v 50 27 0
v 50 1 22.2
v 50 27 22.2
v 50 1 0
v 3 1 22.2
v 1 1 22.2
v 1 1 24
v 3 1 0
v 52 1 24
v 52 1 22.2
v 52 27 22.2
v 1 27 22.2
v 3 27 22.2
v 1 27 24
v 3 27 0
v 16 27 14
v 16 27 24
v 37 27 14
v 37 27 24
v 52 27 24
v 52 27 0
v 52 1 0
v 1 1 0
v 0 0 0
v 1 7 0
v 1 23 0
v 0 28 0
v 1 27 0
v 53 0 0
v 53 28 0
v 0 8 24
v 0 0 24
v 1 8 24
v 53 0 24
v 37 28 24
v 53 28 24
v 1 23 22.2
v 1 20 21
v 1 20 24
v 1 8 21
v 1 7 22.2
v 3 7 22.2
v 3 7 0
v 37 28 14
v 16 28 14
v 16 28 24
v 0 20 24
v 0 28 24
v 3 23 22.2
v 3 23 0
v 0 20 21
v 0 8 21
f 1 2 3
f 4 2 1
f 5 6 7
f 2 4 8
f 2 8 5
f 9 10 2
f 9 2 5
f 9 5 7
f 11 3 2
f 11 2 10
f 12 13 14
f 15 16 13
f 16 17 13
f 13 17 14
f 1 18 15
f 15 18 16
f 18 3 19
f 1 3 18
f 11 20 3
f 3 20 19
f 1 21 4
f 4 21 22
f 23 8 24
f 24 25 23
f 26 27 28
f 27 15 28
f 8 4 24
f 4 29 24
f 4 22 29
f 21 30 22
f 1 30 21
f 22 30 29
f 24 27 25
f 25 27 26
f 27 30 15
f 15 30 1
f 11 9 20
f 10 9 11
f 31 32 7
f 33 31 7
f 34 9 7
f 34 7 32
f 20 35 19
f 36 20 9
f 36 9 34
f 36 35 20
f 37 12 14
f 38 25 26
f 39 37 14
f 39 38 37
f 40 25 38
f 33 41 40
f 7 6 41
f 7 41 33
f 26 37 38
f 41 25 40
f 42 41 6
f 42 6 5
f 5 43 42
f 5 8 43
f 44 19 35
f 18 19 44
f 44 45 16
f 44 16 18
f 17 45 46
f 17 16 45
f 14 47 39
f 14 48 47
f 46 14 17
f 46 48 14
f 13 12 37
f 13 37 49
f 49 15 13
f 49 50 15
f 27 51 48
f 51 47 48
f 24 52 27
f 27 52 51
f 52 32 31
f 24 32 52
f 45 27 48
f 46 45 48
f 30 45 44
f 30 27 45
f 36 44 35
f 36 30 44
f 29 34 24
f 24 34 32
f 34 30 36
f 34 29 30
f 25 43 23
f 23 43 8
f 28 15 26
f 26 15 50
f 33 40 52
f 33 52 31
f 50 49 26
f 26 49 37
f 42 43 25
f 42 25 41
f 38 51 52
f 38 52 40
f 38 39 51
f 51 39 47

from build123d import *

# Parameters (mm, degrees)
BOX006_W     = 1
BOX006_H     = 12
BOX006_DEPTH = 3
BOX005_W     = 21
BOX005_H     = 1
BOX005_DEPTH = 10
BOX004_W     = 2
BOX004_H     = 26
BOX004_DEPTH = 22.2
BOX002_W     = 2
BOX002_H     = 4
BOX002_DEPTH = 22.2
BOX001_W     = 51
BOX001_H     = 26
BOX001_DEPTH = 24
BOX_W        = 53
BOX_H        = 28
BOX_DEPTH    = 24
BOX003_W     = 2
BOX003_H     = 6
BOX003_DEPTH = 22.2


with BuildPart() as connectorcutout:
    # Box006 → Box006 (new body)
    with BuildSketch(Plane(origin=(0, 8, 21), x_dir=(1, 0, 0), z_dir=(0, 0, 1))):
        with Locations((0.5, 6)):
            Rectangle(BOX006_W, BOX006_H)
    extrude(amount=BOX006_DEPTH)


with BuildPart() as cube:
    # Box005 → Box005 (new body)
    with BuildSketch(Plane(origin=(16, 27, 14), x_dir=(1, 0, 0), z_dir=(0, 0, 1))):
        with Locations((10.5, 0.5)):
            Rectangle(BOX005_W, BOX005_H)
    extrude(amount=BOX005_DEPTH)


with BuildPart() as rightsupport:
    # Box004 → Box004 (new body)
    with BuildSketch(Plane(origin=(50, 1, 0), x_dir=(1, 0, 0), z_dir=(0, 0, 1))):
        with Locations((1, 13)):
            Rectangle(BOX004_W, BOX004_H)
    extrude(amount=BOX004_DEPTH)


with BuildPart() as topleftsupport:
    # Box002 → Box002 (new body)
    with BuildSketch(Plane(origin=(1, 23, 0), x_dir=(1, 0, 0), z_dir=(0, 0, 1))):
        with Locations((1, 2)):
            Rectangle(BOX002_W, BOX002_H)
    extrude(amount=BOX002_DEPTH)


with BuildPart() as inside:
    # Box001 → Box001 (new body)
    with BuildSketch(Plane(origin=(1, 1, 0), x_dir=(1, 0, 0), z_dir=(0, 0, 1))):
        with Locations((25.5, 13)):
            Rectangle(BOX001_W, BOX001_H)
    extrude(amount=BOX001_DEPTH)


with BuildPart() as fusion:
    # Box → Box (new body)
    with BuildSketch(Plane.XY):
        with Locations((26.5, 14)):
            Rectangle(BOX_W, BOX_H)
    extrude(amount=BOX_DEPTH)

    # Cut: cut Inside
    add(inside.part, mode=Mode.SUBTRACT)

    # Fusion: union topleftsupport
    add(topleftsupport.part)


with BuildPart() as cut002:
    # Box003 → Box003 (new body)
    with BuildSketch(Plane(origin=(1, 1, 0), x_dir=(1, 0, 0), z_dir=(0, 0, 1))):
        with Locations((1, 3)):
            Rectangle(BOX003_W, BOX003_H)
    extrude(amount=BOX003_DEPTH)

    # Fusion001: union Fusion
    add(fusion.part)

    # Fusion002: union rightsupport
    add(rightsupport.part)

    # Cut001: cut Cube
    add(cube.part, mode=Mode.SUBTRACT)

    # Cut002: cut ConnectorCutout
    add(connectorcutout.part, mode=Mode.SUBTRACT)


solid = cut002.part
